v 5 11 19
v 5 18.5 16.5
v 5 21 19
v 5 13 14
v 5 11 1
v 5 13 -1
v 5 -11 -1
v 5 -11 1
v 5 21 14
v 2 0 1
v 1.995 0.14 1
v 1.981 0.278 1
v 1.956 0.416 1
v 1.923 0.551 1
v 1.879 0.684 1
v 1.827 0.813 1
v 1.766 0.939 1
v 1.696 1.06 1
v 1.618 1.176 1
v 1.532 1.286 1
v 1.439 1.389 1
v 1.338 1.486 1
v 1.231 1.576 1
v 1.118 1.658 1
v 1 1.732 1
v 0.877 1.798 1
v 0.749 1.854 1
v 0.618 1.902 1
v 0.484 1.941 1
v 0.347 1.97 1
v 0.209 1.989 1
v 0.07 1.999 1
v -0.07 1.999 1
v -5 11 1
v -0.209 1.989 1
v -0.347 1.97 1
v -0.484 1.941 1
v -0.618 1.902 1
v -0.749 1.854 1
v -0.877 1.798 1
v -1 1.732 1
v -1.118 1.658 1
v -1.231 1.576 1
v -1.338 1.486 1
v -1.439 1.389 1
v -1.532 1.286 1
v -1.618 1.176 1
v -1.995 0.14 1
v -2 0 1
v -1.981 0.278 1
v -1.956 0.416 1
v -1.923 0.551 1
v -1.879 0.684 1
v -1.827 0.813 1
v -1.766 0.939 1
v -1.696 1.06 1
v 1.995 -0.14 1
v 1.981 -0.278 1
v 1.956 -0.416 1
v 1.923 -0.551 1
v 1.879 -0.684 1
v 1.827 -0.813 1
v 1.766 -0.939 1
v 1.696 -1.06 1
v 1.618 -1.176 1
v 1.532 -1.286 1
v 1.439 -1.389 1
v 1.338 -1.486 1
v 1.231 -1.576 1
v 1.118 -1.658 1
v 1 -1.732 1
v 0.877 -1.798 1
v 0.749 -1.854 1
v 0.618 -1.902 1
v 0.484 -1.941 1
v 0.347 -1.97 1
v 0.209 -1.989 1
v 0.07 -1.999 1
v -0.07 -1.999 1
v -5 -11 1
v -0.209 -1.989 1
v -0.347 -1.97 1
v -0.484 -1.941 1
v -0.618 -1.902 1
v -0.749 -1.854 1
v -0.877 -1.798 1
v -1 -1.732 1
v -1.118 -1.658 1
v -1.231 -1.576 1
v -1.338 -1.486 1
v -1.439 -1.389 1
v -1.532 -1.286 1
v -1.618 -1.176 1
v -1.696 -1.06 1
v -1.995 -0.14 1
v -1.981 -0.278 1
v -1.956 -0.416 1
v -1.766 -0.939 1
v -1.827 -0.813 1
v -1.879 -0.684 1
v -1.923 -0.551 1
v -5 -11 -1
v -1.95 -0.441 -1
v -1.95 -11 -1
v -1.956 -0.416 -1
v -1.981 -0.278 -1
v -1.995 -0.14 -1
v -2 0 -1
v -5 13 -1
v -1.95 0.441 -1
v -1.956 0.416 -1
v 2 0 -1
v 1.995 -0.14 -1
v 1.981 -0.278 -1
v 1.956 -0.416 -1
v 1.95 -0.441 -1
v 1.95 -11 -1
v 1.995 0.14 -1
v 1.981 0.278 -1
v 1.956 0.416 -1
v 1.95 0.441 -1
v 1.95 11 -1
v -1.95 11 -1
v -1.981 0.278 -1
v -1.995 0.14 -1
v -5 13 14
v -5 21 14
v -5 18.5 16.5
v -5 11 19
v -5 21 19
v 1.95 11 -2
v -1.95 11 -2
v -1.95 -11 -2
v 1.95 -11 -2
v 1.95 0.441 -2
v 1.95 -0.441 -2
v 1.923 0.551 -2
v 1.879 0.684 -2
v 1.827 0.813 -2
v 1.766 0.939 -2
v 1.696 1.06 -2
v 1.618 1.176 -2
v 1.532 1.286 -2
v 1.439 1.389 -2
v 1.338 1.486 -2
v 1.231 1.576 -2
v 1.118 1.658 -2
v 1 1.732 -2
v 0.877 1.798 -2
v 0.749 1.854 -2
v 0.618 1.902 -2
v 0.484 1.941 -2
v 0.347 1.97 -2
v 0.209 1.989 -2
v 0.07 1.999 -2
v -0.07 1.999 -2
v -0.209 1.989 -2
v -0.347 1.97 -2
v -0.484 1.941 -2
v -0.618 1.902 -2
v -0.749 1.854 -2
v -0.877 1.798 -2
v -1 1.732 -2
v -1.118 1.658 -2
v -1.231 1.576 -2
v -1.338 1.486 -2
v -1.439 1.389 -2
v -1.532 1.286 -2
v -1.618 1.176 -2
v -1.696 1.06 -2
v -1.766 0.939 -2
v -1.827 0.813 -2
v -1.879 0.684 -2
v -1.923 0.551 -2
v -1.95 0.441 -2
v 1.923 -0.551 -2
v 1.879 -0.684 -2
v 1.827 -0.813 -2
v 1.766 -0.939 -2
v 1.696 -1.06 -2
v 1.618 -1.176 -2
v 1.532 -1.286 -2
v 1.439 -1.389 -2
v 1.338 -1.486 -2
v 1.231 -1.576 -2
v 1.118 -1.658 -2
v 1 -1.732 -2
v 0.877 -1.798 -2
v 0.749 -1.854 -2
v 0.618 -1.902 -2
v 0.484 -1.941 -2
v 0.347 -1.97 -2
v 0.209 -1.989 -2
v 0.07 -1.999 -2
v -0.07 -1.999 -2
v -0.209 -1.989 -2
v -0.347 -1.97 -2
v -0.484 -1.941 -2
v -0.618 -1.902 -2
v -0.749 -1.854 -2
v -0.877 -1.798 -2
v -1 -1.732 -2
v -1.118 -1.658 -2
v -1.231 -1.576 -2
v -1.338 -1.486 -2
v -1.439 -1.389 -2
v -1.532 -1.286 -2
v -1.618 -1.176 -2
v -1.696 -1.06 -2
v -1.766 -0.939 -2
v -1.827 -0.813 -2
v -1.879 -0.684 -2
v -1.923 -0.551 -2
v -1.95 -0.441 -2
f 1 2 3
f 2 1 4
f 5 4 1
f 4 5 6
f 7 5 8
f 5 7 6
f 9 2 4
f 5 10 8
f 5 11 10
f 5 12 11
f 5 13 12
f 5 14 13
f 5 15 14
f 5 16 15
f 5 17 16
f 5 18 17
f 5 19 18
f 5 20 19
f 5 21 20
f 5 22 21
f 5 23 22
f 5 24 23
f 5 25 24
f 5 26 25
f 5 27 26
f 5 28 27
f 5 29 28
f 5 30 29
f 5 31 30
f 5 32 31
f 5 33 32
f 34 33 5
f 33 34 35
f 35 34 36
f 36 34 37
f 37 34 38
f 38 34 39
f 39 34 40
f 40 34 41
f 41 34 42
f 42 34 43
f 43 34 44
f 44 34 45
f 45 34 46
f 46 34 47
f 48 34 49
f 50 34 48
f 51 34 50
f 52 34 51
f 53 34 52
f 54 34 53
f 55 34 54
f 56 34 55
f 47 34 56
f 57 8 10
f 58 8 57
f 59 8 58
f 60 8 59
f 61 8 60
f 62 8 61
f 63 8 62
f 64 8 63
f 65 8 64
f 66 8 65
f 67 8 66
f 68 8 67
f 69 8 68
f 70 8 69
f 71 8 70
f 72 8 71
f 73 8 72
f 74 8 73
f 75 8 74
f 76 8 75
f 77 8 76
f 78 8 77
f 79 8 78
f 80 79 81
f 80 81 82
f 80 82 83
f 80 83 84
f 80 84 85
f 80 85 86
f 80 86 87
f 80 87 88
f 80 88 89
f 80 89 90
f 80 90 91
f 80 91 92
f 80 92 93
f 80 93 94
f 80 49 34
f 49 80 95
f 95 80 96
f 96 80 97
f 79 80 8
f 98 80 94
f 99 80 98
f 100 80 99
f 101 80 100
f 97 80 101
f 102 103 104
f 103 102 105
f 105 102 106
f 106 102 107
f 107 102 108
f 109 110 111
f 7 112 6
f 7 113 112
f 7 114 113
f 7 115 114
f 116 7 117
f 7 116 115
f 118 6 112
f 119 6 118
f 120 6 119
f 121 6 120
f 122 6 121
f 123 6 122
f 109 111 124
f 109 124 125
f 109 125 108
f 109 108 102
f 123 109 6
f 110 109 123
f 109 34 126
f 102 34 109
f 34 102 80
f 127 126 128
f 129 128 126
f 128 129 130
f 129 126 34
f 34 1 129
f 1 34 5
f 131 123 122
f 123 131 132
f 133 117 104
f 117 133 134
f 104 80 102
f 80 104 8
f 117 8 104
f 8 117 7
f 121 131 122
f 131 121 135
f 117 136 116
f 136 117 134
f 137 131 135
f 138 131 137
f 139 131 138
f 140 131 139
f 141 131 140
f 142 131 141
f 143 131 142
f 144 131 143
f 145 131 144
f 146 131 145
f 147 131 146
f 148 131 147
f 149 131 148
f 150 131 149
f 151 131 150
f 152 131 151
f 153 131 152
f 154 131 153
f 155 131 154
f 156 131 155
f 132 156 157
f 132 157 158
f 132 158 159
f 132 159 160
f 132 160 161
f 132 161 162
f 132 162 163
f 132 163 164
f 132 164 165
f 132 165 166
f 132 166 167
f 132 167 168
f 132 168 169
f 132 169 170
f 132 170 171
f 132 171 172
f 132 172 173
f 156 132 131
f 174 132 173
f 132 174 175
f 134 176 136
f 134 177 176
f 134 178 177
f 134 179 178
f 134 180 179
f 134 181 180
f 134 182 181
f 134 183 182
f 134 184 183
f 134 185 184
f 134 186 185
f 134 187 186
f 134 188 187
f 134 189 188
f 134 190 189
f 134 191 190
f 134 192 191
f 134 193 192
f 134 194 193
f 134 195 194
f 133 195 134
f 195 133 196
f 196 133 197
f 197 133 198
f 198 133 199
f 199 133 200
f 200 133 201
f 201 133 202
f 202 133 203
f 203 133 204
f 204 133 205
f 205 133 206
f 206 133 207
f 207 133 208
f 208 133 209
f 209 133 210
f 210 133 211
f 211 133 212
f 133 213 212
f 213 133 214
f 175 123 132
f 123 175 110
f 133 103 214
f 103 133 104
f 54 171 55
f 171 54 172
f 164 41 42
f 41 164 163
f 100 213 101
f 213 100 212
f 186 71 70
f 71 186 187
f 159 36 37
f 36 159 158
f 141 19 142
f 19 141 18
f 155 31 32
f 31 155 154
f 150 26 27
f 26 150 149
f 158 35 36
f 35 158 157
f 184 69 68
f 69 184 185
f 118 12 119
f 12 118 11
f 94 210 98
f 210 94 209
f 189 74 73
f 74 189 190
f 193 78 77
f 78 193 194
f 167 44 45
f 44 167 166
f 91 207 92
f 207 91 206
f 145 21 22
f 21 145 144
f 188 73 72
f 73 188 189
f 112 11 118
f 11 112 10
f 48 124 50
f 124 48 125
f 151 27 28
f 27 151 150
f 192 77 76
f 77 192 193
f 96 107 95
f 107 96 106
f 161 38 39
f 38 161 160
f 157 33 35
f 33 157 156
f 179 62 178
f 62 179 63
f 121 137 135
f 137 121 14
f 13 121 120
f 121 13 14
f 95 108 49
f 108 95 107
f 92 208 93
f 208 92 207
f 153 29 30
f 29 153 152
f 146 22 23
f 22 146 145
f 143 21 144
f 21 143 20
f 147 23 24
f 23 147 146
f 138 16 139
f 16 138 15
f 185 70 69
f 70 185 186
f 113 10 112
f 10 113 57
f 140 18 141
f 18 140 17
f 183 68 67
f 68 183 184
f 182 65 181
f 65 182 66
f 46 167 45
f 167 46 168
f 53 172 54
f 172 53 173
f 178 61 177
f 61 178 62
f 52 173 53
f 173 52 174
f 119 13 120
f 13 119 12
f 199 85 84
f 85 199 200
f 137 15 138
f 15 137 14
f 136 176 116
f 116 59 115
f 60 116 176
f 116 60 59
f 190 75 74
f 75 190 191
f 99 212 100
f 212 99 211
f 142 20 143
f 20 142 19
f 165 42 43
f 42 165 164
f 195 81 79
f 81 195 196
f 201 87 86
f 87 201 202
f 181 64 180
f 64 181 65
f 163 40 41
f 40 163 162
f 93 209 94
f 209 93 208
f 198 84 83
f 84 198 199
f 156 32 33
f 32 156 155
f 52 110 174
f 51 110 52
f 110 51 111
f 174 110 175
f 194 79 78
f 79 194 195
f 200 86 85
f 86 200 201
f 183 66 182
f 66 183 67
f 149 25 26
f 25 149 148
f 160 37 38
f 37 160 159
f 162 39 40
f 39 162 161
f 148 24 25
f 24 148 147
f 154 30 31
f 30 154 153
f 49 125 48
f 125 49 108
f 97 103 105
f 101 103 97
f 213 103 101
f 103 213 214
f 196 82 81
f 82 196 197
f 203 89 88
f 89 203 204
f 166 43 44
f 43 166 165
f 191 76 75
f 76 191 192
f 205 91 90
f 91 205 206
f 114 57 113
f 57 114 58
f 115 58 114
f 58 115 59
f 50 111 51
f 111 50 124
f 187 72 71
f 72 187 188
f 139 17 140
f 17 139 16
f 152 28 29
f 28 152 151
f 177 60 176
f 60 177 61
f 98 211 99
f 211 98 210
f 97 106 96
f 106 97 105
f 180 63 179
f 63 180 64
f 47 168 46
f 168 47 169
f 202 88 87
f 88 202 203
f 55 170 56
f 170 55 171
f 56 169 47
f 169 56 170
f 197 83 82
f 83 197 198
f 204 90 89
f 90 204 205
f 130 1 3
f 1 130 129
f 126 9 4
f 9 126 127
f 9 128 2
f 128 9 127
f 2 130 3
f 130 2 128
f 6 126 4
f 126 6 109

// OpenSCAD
$fn=90;
width = 10;
baseLength = 22;
baseThickness = 2;
difference(){
	union(){
		cube([width, baseLength, baseThickness], center = true);
		translate([0, 0, -0.5-baseThickness/2])
			cube([3.9, baseLength, 1], center = true);
	}
	#cylinder(d=4, h=10, center=true);
}

printHolderHeight = 15;
verticalThickness = 2;
translate([0, (baseLength+verticalThickness)/2, (printHolderHeight-baseThickness)/2])
	cube([width, verticalThickness, printHolderHeight], center=true);


holderLength = 10;
holderThickness = 5;
translate([0, (baseLength+holderLength)/2, printHolderHeight+(holderThickness-baseThickness)/2])
	difference(){
		cube([width, holderLength, holderThickness], center=true);
		#translate([-width/2, holderLength/2, 0])
			rotate([0, 90, 0])
				cylinder(d=holderThickness, h=width, $fn=4);
	}
